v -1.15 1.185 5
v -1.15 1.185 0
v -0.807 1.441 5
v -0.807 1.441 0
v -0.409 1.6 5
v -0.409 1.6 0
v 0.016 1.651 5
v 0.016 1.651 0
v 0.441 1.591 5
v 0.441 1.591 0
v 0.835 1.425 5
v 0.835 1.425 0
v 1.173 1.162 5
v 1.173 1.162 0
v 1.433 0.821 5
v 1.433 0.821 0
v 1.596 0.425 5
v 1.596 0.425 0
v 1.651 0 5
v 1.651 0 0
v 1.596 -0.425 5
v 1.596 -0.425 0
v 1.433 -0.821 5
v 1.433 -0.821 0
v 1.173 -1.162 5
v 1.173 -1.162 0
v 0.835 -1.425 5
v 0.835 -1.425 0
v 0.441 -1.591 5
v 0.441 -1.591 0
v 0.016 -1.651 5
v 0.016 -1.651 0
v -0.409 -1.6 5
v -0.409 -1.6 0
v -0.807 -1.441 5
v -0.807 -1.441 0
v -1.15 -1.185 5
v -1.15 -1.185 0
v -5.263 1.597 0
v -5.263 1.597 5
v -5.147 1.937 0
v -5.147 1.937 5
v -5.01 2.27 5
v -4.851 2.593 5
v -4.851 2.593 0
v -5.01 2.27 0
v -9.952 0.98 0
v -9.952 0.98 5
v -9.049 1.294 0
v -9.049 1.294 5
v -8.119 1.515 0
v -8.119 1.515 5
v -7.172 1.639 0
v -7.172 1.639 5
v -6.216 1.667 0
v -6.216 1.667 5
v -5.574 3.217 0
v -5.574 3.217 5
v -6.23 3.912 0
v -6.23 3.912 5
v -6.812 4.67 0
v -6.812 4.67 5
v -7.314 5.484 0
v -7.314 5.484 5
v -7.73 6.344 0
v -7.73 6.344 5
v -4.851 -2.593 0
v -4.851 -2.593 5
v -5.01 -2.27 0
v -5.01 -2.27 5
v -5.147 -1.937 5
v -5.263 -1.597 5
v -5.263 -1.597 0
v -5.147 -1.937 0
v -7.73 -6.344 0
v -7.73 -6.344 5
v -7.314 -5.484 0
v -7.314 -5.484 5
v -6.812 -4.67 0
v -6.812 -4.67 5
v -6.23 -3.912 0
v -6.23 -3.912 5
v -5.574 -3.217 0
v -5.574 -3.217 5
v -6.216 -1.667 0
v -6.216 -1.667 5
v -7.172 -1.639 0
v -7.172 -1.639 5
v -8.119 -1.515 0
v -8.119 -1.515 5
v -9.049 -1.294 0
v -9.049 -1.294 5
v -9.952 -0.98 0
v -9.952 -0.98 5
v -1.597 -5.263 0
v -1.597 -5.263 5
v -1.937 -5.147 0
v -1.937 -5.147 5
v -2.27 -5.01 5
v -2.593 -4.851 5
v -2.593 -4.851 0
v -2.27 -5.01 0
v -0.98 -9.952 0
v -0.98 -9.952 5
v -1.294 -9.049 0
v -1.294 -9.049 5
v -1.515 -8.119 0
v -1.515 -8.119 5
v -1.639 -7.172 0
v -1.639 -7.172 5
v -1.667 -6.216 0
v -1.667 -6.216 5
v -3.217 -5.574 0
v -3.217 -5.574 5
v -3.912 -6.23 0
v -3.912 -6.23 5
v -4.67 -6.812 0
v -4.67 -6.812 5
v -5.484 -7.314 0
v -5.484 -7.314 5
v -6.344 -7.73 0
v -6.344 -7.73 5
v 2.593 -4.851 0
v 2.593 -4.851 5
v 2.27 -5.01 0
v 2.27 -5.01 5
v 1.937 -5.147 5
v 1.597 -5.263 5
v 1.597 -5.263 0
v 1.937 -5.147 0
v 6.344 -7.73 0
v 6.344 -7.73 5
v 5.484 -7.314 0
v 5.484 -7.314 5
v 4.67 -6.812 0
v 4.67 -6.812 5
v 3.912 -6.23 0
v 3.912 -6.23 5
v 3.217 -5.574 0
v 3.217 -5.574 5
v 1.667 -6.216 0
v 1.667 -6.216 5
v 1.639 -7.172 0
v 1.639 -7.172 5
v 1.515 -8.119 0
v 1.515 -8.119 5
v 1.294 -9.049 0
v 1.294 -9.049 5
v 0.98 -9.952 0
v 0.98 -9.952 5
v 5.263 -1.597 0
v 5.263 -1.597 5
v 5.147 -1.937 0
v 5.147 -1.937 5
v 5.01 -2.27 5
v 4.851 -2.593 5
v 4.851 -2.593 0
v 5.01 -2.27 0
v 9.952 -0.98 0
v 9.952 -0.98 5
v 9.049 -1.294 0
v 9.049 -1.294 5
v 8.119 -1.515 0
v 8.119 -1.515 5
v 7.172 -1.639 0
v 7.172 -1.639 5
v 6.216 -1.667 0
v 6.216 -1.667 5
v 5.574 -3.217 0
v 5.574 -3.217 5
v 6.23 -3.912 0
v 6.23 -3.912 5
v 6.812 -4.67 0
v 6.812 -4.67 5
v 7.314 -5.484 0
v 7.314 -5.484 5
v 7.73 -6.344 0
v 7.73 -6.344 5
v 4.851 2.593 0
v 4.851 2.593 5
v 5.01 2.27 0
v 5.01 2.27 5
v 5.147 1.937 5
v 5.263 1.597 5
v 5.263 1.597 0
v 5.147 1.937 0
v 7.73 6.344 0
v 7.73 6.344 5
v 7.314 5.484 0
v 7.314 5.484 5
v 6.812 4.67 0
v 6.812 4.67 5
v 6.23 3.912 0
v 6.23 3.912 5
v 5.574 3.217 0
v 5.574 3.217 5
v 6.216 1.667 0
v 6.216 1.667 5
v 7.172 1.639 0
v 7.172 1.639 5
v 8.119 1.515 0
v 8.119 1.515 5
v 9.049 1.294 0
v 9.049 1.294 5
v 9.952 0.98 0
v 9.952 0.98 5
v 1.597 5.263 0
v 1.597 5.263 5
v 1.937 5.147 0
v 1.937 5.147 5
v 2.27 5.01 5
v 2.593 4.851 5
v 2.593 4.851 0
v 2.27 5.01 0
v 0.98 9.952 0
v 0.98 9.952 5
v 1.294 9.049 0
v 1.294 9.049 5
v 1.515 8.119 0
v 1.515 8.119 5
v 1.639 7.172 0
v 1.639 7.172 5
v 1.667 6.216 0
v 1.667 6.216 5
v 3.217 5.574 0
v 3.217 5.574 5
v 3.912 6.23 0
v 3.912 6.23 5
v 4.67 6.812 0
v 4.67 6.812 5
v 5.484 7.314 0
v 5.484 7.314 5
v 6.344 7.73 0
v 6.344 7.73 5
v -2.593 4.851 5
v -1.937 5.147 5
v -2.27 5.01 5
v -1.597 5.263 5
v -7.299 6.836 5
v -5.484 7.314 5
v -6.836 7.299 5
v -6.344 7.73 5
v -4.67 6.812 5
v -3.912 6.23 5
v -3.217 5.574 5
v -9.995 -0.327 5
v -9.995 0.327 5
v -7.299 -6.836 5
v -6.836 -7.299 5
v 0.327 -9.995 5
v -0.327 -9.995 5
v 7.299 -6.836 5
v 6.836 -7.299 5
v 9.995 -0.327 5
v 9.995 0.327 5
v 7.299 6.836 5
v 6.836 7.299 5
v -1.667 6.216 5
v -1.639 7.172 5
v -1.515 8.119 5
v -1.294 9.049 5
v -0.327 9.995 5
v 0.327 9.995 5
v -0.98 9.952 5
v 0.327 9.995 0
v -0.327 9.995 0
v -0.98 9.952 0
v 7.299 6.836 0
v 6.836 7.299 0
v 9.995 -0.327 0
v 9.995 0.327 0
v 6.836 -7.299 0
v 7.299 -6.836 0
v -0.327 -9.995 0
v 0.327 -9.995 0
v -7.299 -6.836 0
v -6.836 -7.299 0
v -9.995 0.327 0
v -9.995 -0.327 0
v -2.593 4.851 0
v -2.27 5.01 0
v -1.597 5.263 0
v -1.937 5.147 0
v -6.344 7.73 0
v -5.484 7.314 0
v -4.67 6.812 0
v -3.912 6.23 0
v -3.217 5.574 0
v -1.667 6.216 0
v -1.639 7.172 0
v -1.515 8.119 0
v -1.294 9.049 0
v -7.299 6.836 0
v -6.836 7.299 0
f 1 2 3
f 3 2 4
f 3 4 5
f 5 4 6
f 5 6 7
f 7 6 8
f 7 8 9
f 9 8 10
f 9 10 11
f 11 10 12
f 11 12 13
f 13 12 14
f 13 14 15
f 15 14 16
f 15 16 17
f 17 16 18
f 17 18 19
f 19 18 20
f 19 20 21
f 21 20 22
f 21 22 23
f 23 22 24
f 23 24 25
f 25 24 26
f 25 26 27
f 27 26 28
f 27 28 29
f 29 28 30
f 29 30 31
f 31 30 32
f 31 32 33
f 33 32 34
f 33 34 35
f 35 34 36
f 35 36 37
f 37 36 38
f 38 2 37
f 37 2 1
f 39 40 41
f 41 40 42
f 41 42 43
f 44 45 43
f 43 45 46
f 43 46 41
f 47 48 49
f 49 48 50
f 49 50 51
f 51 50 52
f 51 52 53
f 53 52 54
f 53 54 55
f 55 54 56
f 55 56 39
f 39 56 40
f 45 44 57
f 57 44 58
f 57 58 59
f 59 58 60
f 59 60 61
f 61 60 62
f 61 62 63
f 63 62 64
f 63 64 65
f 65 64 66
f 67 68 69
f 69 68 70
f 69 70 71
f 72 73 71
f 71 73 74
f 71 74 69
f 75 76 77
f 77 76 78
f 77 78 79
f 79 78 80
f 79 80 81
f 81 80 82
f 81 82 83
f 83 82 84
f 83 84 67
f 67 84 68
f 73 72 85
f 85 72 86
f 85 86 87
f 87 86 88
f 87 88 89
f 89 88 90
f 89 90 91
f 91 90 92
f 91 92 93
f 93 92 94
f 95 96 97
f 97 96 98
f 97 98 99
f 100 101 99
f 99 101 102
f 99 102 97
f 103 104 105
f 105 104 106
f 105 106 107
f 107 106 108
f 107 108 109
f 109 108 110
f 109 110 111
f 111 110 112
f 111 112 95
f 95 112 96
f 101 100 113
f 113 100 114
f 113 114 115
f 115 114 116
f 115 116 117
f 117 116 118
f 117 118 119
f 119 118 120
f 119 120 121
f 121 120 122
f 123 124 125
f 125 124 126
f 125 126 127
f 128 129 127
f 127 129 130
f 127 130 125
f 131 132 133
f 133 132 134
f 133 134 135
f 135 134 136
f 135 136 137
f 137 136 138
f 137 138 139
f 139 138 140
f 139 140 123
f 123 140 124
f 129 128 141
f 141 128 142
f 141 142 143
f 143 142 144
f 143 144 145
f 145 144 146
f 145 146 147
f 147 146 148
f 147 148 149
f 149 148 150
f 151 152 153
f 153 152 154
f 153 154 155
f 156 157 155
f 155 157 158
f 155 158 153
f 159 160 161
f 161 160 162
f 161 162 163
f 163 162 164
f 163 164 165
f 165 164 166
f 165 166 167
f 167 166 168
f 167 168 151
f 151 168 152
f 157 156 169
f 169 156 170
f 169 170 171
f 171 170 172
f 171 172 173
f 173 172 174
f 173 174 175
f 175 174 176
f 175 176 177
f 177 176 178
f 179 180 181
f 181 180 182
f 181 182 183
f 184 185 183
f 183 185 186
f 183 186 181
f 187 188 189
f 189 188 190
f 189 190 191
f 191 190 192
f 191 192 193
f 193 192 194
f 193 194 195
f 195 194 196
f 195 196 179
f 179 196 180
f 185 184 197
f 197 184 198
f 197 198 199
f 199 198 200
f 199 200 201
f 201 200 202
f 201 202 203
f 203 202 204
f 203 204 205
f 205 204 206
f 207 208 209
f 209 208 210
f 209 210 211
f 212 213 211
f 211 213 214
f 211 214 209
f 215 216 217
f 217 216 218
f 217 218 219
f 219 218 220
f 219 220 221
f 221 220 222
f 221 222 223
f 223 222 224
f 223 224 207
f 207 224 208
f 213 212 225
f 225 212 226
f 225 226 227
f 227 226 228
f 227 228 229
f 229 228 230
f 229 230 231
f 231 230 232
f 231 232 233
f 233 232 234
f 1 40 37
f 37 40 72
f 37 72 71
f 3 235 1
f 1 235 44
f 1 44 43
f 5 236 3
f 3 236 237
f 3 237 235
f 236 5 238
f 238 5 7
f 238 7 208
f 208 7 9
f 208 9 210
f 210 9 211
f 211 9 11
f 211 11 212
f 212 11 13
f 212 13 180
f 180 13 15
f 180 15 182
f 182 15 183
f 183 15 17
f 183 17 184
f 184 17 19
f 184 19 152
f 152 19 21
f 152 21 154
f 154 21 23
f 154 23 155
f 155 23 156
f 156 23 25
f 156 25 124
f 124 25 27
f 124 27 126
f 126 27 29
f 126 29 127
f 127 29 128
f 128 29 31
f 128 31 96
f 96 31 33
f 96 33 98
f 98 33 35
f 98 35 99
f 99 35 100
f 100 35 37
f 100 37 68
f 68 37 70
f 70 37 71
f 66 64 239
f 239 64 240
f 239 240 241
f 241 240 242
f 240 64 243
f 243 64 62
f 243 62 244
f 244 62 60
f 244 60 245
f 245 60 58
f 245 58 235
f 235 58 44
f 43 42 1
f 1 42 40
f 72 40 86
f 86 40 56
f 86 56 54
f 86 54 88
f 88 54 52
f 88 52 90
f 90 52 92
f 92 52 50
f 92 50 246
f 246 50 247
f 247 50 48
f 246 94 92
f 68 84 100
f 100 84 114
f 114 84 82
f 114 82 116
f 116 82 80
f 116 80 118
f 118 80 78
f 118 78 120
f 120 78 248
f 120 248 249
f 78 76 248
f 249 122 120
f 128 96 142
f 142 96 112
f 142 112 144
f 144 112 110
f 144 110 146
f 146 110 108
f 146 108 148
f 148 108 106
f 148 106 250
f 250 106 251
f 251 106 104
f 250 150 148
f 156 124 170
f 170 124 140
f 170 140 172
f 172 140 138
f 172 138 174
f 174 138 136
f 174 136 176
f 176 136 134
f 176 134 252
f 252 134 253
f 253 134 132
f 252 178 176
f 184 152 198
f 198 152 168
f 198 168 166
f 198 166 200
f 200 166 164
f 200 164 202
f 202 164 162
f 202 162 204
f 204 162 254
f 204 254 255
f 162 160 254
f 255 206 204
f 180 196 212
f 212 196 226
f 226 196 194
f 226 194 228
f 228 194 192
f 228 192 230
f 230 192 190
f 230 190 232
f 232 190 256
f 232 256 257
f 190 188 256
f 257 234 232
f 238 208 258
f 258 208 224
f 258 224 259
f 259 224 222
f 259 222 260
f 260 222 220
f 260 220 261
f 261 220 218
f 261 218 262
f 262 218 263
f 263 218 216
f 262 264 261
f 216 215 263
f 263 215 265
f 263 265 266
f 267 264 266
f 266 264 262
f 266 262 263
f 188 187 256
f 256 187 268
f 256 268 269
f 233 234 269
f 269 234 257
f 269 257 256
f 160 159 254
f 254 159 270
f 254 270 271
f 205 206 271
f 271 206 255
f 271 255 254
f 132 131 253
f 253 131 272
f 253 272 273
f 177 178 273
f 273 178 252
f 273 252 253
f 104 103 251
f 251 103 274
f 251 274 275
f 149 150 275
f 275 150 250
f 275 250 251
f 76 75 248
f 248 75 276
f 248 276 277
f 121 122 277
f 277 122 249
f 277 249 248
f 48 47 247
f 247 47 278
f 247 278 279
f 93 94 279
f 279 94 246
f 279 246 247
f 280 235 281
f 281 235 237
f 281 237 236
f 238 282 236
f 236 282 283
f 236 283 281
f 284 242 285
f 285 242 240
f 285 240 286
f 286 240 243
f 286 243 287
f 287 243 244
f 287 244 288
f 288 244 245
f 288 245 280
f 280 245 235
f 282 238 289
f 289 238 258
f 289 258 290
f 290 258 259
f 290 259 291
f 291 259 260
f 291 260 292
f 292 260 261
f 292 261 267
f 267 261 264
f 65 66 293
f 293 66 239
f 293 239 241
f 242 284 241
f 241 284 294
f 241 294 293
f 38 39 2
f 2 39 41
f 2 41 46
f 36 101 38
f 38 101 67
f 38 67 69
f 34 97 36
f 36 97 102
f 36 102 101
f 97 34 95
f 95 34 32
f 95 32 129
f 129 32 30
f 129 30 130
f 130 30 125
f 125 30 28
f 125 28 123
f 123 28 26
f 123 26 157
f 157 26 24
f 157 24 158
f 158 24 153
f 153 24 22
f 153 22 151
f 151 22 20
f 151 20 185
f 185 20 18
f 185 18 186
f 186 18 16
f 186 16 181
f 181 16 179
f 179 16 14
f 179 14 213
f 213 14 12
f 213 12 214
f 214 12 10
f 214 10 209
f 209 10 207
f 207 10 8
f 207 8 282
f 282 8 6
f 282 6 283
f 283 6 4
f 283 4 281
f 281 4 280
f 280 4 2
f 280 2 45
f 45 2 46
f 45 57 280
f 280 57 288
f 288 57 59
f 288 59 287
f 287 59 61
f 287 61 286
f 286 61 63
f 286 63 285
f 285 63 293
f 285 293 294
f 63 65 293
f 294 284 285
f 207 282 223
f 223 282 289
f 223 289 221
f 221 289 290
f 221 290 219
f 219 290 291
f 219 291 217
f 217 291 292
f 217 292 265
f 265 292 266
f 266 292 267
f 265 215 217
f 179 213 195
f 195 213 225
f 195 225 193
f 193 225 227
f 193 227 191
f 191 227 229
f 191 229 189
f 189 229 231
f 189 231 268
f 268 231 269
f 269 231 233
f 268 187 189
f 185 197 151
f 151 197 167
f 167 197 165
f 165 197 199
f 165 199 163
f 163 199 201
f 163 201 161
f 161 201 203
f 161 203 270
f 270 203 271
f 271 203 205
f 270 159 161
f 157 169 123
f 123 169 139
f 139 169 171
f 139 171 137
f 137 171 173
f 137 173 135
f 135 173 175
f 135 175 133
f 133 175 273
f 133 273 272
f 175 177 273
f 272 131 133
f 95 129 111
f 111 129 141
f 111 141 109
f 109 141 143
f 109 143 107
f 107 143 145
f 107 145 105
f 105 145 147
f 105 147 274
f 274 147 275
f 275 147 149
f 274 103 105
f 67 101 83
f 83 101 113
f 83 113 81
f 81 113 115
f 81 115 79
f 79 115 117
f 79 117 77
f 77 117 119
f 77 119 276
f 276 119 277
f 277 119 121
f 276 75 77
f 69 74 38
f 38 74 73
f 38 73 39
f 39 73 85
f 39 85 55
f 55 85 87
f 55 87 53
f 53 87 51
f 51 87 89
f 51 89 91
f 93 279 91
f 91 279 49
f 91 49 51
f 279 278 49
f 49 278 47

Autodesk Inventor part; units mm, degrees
sketch "Sketch1" plane through (0, 0, 0) normal (0, 0, 1) x (1, 0, 0)
  circle A0 centre (0, 0) radius 10
  dimension "d0" = 20
extrude "Extrusion1" add sketch "Sketch1" along normal blind 5
ref_plane "Work Plane2" through (0, 0, 2.5) normal (0, 0, 1) x (1, 0, 0)
sketch "Sketch2" plane through (0, 0, 0) normal (0, 0, -1) x (-1, 0, 0)
  circle A0 centre (0, 0) radius 10 projected
  circle A1 centre (0, 0) radius 8
  dimension "d3" = 16
surface extrude "Pitch Diameter" sketch "Sketch2" against normal through all shown no curves A1
ref_plane "Work Plane8" through (0, 0, 0) normal (0.9238795, 0.3826834, 0) x (0, 0, 1)
ref_plane "Work Plane9" through (0, 0, 0) normal (1, 0, 0) x (0, 1, 0)
spur gear teeth "Spur Gear" teeth 8 pitch diameter 16 tip diameter 20 root diameter 11 face width 5 start plane through (0, 0, 0) normal (0, 0, -1) x (-1, 0, 0)
sketch "Sketch3" plane through (0, 0, 5) normal (0, 0, 1) x (1, 0, 0)
  line L0 (-1.15, 1.185) -> (-1.15, -1.185)
  arc A0 (-1.15, -1.185) -> (-1.15, 1.185) centre (0, 0) ccw
  point P0 (-1.15, 0)
  dimension "d49" = 2.37
  dimension "d50" = 1.15
extrude "Extrusion2" cut sketch "Sketch3" against normal through all
equation "\"d0\" = da_da"
equation "\"d1\" = da_b"
equation "\"d3\" = da_d"
equation "\"d16\" = da_aw"
equation "\"d43\" = da_aw"
equation "\"d46\" = da_aw"
equation "\"da_da\" = 20"
equation "\"da_b\" = 5"
equation "\"da_d\" = 16"
equation "\"da_aw\" = 108"
properties part number "Spur Gear1" material "Steel"
